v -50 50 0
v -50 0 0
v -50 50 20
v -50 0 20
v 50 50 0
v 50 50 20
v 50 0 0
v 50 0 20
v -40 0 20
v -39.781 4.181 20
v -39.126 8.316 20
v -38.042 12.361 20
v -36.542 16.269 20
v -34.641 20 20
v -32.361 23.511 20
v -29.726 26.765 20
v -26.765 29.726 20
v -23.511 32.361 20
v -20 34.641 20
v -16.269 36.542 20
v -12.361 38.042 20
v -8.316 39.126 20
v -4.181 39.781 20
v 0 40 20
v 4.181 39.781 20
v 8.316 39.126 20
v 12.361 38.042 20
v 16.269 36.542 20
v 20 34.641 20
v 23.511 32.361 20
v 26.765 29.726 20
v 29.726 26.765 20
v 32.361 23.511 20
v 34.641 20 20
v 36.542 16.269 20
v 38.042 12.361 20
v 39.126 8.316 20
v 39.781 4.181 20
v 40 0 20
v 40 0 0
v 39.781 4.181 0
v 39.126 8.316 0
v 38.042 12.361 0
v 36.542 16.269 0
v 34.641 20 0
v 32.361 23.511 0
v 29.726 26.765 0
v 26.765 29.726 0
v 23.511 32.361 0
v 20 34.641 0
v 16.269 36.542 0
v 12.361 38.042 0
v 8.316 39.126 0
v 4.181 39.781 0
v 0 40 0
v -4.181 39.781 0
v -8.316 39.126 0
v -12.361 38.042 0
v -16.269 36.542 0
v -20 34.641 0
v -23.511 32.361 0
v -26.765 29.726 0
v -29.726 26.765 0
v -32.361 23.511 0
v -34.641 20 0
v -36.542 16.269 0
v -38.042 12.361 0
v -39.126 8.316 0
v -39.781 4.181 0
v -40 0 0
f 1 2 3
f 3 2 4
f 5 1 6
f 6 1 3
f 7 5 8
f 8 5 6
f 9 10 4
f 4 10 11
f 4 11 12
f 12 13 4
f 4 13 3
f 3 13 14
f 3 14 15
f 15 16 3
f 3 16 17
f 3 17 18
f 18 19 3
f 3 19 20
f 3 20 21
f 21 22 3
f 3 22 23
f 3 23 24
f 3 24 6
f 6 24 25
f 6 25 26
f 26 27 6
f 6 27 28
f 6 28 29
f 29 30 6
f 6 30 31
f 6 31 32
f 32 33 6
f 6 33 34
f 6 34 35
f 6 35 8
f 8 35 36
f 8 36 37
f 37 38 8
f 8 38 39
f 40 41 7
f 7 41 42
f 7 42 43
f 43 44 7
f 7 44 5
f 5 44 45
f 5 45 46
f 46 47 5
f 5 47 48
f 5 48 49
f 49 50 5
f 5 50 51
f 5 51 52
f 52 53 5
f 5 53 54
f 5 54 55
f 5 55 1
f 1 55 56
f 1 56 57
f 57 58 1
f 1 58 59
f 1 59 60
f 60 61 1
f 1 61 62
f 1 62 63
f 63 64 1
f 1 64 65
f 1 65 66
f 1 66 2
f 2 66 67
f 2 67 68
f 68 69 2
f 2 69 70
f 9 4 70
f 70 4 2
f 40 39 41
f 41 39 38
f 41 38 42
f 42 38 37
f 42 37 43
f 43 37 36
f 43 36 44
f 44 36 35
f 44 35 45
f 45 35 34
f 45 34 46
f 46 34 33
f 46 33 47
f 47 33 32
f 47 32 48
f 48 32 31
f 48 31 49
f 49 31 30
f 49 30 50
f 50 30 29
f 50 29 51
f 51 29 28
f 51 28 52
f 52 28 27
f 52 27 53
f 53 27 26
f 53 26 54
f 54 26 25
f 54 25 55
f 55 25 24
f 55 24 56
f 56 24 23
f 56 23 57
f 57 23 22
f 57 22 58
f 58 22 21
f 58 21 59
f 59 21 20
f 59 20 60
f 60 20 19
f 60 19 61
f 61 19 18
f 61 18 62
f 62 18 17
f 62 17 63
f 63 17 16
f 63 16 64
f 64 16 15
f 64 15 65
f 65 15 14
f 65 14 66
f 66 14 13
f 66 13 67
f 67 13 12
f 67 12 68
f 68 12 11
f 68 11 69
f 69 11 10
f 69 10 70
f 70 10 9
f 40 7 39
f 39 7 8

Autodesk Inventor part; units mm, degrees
ref_plane "YZ Plane" through (0, 0, 0) normal (1, 0, 0) x (0, 1, 0)
ref_plane "XZ Plane" through (0, 0, 0) normal (0, 1, 0) x (-1, 0, 0)
ref_plane "XY Plane" through (0, 0, 0) normal (0, 0, 1) x (1, 0, 0)
sketch "Sketch13" plane through (0, 0, 0) normal (0, 0, 1) x (1, 0, 0)
  line L0 (-50, 50) -> (50, 50)
  line L1 (50, 50) -> (50, 0)
  line L2 (50, 0) -> (-50, 0)
  line L3 (-50, 0) -> (-50, 50)
  line L4 (-50, 50) -> (50, 0) construction
  line L5 (50, 50) -> (-50, 0) construction
  point P0 (0, 0)
  point P1 (0, 25)
  dimension "d42" = 100
  dimension "d43" = 50
extrude "Extrusion11" add sketch "Sketch13" along normal blind 20
sketch "Sketch14" plane through (0, 0, 20) normal (0, 0, 1) x (1, 0, 0)
  circle A0 centre (0, 0) radius 40
  dimension "d46" = 80
extrude "Extrusion12" cut sketch "Sketch14" against normal blind 20
properties part number "fixation_pipe_v01"
